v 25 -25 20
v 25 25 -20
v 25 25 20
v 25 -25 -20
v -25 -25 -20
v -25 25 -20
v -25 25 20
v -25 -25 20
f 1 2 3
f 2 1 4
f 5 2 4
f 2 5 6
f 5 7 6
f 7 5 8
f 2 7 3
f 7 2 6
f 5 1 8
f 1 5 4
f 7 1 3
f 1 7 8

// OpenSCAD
// Define dimensions for the blocks
block_width = 50;  // Width of the blocks
block_depth = 50;  // Depth of the blocks
block_height = 20; // Height of the blocks

// Base block
module base_block() {
    cube([block_width, block_depth, block_height], center = true);
}

// Top block
module top_block() {
    cube([block_width, block_depth, block_height], center = true);
}

// Assembly
translate([0, 0, -block_height / 2]) base_block(); // Position the base block
translate([0, 0, block_height / 2]) top_block();  // Position the top block directly above the base block
